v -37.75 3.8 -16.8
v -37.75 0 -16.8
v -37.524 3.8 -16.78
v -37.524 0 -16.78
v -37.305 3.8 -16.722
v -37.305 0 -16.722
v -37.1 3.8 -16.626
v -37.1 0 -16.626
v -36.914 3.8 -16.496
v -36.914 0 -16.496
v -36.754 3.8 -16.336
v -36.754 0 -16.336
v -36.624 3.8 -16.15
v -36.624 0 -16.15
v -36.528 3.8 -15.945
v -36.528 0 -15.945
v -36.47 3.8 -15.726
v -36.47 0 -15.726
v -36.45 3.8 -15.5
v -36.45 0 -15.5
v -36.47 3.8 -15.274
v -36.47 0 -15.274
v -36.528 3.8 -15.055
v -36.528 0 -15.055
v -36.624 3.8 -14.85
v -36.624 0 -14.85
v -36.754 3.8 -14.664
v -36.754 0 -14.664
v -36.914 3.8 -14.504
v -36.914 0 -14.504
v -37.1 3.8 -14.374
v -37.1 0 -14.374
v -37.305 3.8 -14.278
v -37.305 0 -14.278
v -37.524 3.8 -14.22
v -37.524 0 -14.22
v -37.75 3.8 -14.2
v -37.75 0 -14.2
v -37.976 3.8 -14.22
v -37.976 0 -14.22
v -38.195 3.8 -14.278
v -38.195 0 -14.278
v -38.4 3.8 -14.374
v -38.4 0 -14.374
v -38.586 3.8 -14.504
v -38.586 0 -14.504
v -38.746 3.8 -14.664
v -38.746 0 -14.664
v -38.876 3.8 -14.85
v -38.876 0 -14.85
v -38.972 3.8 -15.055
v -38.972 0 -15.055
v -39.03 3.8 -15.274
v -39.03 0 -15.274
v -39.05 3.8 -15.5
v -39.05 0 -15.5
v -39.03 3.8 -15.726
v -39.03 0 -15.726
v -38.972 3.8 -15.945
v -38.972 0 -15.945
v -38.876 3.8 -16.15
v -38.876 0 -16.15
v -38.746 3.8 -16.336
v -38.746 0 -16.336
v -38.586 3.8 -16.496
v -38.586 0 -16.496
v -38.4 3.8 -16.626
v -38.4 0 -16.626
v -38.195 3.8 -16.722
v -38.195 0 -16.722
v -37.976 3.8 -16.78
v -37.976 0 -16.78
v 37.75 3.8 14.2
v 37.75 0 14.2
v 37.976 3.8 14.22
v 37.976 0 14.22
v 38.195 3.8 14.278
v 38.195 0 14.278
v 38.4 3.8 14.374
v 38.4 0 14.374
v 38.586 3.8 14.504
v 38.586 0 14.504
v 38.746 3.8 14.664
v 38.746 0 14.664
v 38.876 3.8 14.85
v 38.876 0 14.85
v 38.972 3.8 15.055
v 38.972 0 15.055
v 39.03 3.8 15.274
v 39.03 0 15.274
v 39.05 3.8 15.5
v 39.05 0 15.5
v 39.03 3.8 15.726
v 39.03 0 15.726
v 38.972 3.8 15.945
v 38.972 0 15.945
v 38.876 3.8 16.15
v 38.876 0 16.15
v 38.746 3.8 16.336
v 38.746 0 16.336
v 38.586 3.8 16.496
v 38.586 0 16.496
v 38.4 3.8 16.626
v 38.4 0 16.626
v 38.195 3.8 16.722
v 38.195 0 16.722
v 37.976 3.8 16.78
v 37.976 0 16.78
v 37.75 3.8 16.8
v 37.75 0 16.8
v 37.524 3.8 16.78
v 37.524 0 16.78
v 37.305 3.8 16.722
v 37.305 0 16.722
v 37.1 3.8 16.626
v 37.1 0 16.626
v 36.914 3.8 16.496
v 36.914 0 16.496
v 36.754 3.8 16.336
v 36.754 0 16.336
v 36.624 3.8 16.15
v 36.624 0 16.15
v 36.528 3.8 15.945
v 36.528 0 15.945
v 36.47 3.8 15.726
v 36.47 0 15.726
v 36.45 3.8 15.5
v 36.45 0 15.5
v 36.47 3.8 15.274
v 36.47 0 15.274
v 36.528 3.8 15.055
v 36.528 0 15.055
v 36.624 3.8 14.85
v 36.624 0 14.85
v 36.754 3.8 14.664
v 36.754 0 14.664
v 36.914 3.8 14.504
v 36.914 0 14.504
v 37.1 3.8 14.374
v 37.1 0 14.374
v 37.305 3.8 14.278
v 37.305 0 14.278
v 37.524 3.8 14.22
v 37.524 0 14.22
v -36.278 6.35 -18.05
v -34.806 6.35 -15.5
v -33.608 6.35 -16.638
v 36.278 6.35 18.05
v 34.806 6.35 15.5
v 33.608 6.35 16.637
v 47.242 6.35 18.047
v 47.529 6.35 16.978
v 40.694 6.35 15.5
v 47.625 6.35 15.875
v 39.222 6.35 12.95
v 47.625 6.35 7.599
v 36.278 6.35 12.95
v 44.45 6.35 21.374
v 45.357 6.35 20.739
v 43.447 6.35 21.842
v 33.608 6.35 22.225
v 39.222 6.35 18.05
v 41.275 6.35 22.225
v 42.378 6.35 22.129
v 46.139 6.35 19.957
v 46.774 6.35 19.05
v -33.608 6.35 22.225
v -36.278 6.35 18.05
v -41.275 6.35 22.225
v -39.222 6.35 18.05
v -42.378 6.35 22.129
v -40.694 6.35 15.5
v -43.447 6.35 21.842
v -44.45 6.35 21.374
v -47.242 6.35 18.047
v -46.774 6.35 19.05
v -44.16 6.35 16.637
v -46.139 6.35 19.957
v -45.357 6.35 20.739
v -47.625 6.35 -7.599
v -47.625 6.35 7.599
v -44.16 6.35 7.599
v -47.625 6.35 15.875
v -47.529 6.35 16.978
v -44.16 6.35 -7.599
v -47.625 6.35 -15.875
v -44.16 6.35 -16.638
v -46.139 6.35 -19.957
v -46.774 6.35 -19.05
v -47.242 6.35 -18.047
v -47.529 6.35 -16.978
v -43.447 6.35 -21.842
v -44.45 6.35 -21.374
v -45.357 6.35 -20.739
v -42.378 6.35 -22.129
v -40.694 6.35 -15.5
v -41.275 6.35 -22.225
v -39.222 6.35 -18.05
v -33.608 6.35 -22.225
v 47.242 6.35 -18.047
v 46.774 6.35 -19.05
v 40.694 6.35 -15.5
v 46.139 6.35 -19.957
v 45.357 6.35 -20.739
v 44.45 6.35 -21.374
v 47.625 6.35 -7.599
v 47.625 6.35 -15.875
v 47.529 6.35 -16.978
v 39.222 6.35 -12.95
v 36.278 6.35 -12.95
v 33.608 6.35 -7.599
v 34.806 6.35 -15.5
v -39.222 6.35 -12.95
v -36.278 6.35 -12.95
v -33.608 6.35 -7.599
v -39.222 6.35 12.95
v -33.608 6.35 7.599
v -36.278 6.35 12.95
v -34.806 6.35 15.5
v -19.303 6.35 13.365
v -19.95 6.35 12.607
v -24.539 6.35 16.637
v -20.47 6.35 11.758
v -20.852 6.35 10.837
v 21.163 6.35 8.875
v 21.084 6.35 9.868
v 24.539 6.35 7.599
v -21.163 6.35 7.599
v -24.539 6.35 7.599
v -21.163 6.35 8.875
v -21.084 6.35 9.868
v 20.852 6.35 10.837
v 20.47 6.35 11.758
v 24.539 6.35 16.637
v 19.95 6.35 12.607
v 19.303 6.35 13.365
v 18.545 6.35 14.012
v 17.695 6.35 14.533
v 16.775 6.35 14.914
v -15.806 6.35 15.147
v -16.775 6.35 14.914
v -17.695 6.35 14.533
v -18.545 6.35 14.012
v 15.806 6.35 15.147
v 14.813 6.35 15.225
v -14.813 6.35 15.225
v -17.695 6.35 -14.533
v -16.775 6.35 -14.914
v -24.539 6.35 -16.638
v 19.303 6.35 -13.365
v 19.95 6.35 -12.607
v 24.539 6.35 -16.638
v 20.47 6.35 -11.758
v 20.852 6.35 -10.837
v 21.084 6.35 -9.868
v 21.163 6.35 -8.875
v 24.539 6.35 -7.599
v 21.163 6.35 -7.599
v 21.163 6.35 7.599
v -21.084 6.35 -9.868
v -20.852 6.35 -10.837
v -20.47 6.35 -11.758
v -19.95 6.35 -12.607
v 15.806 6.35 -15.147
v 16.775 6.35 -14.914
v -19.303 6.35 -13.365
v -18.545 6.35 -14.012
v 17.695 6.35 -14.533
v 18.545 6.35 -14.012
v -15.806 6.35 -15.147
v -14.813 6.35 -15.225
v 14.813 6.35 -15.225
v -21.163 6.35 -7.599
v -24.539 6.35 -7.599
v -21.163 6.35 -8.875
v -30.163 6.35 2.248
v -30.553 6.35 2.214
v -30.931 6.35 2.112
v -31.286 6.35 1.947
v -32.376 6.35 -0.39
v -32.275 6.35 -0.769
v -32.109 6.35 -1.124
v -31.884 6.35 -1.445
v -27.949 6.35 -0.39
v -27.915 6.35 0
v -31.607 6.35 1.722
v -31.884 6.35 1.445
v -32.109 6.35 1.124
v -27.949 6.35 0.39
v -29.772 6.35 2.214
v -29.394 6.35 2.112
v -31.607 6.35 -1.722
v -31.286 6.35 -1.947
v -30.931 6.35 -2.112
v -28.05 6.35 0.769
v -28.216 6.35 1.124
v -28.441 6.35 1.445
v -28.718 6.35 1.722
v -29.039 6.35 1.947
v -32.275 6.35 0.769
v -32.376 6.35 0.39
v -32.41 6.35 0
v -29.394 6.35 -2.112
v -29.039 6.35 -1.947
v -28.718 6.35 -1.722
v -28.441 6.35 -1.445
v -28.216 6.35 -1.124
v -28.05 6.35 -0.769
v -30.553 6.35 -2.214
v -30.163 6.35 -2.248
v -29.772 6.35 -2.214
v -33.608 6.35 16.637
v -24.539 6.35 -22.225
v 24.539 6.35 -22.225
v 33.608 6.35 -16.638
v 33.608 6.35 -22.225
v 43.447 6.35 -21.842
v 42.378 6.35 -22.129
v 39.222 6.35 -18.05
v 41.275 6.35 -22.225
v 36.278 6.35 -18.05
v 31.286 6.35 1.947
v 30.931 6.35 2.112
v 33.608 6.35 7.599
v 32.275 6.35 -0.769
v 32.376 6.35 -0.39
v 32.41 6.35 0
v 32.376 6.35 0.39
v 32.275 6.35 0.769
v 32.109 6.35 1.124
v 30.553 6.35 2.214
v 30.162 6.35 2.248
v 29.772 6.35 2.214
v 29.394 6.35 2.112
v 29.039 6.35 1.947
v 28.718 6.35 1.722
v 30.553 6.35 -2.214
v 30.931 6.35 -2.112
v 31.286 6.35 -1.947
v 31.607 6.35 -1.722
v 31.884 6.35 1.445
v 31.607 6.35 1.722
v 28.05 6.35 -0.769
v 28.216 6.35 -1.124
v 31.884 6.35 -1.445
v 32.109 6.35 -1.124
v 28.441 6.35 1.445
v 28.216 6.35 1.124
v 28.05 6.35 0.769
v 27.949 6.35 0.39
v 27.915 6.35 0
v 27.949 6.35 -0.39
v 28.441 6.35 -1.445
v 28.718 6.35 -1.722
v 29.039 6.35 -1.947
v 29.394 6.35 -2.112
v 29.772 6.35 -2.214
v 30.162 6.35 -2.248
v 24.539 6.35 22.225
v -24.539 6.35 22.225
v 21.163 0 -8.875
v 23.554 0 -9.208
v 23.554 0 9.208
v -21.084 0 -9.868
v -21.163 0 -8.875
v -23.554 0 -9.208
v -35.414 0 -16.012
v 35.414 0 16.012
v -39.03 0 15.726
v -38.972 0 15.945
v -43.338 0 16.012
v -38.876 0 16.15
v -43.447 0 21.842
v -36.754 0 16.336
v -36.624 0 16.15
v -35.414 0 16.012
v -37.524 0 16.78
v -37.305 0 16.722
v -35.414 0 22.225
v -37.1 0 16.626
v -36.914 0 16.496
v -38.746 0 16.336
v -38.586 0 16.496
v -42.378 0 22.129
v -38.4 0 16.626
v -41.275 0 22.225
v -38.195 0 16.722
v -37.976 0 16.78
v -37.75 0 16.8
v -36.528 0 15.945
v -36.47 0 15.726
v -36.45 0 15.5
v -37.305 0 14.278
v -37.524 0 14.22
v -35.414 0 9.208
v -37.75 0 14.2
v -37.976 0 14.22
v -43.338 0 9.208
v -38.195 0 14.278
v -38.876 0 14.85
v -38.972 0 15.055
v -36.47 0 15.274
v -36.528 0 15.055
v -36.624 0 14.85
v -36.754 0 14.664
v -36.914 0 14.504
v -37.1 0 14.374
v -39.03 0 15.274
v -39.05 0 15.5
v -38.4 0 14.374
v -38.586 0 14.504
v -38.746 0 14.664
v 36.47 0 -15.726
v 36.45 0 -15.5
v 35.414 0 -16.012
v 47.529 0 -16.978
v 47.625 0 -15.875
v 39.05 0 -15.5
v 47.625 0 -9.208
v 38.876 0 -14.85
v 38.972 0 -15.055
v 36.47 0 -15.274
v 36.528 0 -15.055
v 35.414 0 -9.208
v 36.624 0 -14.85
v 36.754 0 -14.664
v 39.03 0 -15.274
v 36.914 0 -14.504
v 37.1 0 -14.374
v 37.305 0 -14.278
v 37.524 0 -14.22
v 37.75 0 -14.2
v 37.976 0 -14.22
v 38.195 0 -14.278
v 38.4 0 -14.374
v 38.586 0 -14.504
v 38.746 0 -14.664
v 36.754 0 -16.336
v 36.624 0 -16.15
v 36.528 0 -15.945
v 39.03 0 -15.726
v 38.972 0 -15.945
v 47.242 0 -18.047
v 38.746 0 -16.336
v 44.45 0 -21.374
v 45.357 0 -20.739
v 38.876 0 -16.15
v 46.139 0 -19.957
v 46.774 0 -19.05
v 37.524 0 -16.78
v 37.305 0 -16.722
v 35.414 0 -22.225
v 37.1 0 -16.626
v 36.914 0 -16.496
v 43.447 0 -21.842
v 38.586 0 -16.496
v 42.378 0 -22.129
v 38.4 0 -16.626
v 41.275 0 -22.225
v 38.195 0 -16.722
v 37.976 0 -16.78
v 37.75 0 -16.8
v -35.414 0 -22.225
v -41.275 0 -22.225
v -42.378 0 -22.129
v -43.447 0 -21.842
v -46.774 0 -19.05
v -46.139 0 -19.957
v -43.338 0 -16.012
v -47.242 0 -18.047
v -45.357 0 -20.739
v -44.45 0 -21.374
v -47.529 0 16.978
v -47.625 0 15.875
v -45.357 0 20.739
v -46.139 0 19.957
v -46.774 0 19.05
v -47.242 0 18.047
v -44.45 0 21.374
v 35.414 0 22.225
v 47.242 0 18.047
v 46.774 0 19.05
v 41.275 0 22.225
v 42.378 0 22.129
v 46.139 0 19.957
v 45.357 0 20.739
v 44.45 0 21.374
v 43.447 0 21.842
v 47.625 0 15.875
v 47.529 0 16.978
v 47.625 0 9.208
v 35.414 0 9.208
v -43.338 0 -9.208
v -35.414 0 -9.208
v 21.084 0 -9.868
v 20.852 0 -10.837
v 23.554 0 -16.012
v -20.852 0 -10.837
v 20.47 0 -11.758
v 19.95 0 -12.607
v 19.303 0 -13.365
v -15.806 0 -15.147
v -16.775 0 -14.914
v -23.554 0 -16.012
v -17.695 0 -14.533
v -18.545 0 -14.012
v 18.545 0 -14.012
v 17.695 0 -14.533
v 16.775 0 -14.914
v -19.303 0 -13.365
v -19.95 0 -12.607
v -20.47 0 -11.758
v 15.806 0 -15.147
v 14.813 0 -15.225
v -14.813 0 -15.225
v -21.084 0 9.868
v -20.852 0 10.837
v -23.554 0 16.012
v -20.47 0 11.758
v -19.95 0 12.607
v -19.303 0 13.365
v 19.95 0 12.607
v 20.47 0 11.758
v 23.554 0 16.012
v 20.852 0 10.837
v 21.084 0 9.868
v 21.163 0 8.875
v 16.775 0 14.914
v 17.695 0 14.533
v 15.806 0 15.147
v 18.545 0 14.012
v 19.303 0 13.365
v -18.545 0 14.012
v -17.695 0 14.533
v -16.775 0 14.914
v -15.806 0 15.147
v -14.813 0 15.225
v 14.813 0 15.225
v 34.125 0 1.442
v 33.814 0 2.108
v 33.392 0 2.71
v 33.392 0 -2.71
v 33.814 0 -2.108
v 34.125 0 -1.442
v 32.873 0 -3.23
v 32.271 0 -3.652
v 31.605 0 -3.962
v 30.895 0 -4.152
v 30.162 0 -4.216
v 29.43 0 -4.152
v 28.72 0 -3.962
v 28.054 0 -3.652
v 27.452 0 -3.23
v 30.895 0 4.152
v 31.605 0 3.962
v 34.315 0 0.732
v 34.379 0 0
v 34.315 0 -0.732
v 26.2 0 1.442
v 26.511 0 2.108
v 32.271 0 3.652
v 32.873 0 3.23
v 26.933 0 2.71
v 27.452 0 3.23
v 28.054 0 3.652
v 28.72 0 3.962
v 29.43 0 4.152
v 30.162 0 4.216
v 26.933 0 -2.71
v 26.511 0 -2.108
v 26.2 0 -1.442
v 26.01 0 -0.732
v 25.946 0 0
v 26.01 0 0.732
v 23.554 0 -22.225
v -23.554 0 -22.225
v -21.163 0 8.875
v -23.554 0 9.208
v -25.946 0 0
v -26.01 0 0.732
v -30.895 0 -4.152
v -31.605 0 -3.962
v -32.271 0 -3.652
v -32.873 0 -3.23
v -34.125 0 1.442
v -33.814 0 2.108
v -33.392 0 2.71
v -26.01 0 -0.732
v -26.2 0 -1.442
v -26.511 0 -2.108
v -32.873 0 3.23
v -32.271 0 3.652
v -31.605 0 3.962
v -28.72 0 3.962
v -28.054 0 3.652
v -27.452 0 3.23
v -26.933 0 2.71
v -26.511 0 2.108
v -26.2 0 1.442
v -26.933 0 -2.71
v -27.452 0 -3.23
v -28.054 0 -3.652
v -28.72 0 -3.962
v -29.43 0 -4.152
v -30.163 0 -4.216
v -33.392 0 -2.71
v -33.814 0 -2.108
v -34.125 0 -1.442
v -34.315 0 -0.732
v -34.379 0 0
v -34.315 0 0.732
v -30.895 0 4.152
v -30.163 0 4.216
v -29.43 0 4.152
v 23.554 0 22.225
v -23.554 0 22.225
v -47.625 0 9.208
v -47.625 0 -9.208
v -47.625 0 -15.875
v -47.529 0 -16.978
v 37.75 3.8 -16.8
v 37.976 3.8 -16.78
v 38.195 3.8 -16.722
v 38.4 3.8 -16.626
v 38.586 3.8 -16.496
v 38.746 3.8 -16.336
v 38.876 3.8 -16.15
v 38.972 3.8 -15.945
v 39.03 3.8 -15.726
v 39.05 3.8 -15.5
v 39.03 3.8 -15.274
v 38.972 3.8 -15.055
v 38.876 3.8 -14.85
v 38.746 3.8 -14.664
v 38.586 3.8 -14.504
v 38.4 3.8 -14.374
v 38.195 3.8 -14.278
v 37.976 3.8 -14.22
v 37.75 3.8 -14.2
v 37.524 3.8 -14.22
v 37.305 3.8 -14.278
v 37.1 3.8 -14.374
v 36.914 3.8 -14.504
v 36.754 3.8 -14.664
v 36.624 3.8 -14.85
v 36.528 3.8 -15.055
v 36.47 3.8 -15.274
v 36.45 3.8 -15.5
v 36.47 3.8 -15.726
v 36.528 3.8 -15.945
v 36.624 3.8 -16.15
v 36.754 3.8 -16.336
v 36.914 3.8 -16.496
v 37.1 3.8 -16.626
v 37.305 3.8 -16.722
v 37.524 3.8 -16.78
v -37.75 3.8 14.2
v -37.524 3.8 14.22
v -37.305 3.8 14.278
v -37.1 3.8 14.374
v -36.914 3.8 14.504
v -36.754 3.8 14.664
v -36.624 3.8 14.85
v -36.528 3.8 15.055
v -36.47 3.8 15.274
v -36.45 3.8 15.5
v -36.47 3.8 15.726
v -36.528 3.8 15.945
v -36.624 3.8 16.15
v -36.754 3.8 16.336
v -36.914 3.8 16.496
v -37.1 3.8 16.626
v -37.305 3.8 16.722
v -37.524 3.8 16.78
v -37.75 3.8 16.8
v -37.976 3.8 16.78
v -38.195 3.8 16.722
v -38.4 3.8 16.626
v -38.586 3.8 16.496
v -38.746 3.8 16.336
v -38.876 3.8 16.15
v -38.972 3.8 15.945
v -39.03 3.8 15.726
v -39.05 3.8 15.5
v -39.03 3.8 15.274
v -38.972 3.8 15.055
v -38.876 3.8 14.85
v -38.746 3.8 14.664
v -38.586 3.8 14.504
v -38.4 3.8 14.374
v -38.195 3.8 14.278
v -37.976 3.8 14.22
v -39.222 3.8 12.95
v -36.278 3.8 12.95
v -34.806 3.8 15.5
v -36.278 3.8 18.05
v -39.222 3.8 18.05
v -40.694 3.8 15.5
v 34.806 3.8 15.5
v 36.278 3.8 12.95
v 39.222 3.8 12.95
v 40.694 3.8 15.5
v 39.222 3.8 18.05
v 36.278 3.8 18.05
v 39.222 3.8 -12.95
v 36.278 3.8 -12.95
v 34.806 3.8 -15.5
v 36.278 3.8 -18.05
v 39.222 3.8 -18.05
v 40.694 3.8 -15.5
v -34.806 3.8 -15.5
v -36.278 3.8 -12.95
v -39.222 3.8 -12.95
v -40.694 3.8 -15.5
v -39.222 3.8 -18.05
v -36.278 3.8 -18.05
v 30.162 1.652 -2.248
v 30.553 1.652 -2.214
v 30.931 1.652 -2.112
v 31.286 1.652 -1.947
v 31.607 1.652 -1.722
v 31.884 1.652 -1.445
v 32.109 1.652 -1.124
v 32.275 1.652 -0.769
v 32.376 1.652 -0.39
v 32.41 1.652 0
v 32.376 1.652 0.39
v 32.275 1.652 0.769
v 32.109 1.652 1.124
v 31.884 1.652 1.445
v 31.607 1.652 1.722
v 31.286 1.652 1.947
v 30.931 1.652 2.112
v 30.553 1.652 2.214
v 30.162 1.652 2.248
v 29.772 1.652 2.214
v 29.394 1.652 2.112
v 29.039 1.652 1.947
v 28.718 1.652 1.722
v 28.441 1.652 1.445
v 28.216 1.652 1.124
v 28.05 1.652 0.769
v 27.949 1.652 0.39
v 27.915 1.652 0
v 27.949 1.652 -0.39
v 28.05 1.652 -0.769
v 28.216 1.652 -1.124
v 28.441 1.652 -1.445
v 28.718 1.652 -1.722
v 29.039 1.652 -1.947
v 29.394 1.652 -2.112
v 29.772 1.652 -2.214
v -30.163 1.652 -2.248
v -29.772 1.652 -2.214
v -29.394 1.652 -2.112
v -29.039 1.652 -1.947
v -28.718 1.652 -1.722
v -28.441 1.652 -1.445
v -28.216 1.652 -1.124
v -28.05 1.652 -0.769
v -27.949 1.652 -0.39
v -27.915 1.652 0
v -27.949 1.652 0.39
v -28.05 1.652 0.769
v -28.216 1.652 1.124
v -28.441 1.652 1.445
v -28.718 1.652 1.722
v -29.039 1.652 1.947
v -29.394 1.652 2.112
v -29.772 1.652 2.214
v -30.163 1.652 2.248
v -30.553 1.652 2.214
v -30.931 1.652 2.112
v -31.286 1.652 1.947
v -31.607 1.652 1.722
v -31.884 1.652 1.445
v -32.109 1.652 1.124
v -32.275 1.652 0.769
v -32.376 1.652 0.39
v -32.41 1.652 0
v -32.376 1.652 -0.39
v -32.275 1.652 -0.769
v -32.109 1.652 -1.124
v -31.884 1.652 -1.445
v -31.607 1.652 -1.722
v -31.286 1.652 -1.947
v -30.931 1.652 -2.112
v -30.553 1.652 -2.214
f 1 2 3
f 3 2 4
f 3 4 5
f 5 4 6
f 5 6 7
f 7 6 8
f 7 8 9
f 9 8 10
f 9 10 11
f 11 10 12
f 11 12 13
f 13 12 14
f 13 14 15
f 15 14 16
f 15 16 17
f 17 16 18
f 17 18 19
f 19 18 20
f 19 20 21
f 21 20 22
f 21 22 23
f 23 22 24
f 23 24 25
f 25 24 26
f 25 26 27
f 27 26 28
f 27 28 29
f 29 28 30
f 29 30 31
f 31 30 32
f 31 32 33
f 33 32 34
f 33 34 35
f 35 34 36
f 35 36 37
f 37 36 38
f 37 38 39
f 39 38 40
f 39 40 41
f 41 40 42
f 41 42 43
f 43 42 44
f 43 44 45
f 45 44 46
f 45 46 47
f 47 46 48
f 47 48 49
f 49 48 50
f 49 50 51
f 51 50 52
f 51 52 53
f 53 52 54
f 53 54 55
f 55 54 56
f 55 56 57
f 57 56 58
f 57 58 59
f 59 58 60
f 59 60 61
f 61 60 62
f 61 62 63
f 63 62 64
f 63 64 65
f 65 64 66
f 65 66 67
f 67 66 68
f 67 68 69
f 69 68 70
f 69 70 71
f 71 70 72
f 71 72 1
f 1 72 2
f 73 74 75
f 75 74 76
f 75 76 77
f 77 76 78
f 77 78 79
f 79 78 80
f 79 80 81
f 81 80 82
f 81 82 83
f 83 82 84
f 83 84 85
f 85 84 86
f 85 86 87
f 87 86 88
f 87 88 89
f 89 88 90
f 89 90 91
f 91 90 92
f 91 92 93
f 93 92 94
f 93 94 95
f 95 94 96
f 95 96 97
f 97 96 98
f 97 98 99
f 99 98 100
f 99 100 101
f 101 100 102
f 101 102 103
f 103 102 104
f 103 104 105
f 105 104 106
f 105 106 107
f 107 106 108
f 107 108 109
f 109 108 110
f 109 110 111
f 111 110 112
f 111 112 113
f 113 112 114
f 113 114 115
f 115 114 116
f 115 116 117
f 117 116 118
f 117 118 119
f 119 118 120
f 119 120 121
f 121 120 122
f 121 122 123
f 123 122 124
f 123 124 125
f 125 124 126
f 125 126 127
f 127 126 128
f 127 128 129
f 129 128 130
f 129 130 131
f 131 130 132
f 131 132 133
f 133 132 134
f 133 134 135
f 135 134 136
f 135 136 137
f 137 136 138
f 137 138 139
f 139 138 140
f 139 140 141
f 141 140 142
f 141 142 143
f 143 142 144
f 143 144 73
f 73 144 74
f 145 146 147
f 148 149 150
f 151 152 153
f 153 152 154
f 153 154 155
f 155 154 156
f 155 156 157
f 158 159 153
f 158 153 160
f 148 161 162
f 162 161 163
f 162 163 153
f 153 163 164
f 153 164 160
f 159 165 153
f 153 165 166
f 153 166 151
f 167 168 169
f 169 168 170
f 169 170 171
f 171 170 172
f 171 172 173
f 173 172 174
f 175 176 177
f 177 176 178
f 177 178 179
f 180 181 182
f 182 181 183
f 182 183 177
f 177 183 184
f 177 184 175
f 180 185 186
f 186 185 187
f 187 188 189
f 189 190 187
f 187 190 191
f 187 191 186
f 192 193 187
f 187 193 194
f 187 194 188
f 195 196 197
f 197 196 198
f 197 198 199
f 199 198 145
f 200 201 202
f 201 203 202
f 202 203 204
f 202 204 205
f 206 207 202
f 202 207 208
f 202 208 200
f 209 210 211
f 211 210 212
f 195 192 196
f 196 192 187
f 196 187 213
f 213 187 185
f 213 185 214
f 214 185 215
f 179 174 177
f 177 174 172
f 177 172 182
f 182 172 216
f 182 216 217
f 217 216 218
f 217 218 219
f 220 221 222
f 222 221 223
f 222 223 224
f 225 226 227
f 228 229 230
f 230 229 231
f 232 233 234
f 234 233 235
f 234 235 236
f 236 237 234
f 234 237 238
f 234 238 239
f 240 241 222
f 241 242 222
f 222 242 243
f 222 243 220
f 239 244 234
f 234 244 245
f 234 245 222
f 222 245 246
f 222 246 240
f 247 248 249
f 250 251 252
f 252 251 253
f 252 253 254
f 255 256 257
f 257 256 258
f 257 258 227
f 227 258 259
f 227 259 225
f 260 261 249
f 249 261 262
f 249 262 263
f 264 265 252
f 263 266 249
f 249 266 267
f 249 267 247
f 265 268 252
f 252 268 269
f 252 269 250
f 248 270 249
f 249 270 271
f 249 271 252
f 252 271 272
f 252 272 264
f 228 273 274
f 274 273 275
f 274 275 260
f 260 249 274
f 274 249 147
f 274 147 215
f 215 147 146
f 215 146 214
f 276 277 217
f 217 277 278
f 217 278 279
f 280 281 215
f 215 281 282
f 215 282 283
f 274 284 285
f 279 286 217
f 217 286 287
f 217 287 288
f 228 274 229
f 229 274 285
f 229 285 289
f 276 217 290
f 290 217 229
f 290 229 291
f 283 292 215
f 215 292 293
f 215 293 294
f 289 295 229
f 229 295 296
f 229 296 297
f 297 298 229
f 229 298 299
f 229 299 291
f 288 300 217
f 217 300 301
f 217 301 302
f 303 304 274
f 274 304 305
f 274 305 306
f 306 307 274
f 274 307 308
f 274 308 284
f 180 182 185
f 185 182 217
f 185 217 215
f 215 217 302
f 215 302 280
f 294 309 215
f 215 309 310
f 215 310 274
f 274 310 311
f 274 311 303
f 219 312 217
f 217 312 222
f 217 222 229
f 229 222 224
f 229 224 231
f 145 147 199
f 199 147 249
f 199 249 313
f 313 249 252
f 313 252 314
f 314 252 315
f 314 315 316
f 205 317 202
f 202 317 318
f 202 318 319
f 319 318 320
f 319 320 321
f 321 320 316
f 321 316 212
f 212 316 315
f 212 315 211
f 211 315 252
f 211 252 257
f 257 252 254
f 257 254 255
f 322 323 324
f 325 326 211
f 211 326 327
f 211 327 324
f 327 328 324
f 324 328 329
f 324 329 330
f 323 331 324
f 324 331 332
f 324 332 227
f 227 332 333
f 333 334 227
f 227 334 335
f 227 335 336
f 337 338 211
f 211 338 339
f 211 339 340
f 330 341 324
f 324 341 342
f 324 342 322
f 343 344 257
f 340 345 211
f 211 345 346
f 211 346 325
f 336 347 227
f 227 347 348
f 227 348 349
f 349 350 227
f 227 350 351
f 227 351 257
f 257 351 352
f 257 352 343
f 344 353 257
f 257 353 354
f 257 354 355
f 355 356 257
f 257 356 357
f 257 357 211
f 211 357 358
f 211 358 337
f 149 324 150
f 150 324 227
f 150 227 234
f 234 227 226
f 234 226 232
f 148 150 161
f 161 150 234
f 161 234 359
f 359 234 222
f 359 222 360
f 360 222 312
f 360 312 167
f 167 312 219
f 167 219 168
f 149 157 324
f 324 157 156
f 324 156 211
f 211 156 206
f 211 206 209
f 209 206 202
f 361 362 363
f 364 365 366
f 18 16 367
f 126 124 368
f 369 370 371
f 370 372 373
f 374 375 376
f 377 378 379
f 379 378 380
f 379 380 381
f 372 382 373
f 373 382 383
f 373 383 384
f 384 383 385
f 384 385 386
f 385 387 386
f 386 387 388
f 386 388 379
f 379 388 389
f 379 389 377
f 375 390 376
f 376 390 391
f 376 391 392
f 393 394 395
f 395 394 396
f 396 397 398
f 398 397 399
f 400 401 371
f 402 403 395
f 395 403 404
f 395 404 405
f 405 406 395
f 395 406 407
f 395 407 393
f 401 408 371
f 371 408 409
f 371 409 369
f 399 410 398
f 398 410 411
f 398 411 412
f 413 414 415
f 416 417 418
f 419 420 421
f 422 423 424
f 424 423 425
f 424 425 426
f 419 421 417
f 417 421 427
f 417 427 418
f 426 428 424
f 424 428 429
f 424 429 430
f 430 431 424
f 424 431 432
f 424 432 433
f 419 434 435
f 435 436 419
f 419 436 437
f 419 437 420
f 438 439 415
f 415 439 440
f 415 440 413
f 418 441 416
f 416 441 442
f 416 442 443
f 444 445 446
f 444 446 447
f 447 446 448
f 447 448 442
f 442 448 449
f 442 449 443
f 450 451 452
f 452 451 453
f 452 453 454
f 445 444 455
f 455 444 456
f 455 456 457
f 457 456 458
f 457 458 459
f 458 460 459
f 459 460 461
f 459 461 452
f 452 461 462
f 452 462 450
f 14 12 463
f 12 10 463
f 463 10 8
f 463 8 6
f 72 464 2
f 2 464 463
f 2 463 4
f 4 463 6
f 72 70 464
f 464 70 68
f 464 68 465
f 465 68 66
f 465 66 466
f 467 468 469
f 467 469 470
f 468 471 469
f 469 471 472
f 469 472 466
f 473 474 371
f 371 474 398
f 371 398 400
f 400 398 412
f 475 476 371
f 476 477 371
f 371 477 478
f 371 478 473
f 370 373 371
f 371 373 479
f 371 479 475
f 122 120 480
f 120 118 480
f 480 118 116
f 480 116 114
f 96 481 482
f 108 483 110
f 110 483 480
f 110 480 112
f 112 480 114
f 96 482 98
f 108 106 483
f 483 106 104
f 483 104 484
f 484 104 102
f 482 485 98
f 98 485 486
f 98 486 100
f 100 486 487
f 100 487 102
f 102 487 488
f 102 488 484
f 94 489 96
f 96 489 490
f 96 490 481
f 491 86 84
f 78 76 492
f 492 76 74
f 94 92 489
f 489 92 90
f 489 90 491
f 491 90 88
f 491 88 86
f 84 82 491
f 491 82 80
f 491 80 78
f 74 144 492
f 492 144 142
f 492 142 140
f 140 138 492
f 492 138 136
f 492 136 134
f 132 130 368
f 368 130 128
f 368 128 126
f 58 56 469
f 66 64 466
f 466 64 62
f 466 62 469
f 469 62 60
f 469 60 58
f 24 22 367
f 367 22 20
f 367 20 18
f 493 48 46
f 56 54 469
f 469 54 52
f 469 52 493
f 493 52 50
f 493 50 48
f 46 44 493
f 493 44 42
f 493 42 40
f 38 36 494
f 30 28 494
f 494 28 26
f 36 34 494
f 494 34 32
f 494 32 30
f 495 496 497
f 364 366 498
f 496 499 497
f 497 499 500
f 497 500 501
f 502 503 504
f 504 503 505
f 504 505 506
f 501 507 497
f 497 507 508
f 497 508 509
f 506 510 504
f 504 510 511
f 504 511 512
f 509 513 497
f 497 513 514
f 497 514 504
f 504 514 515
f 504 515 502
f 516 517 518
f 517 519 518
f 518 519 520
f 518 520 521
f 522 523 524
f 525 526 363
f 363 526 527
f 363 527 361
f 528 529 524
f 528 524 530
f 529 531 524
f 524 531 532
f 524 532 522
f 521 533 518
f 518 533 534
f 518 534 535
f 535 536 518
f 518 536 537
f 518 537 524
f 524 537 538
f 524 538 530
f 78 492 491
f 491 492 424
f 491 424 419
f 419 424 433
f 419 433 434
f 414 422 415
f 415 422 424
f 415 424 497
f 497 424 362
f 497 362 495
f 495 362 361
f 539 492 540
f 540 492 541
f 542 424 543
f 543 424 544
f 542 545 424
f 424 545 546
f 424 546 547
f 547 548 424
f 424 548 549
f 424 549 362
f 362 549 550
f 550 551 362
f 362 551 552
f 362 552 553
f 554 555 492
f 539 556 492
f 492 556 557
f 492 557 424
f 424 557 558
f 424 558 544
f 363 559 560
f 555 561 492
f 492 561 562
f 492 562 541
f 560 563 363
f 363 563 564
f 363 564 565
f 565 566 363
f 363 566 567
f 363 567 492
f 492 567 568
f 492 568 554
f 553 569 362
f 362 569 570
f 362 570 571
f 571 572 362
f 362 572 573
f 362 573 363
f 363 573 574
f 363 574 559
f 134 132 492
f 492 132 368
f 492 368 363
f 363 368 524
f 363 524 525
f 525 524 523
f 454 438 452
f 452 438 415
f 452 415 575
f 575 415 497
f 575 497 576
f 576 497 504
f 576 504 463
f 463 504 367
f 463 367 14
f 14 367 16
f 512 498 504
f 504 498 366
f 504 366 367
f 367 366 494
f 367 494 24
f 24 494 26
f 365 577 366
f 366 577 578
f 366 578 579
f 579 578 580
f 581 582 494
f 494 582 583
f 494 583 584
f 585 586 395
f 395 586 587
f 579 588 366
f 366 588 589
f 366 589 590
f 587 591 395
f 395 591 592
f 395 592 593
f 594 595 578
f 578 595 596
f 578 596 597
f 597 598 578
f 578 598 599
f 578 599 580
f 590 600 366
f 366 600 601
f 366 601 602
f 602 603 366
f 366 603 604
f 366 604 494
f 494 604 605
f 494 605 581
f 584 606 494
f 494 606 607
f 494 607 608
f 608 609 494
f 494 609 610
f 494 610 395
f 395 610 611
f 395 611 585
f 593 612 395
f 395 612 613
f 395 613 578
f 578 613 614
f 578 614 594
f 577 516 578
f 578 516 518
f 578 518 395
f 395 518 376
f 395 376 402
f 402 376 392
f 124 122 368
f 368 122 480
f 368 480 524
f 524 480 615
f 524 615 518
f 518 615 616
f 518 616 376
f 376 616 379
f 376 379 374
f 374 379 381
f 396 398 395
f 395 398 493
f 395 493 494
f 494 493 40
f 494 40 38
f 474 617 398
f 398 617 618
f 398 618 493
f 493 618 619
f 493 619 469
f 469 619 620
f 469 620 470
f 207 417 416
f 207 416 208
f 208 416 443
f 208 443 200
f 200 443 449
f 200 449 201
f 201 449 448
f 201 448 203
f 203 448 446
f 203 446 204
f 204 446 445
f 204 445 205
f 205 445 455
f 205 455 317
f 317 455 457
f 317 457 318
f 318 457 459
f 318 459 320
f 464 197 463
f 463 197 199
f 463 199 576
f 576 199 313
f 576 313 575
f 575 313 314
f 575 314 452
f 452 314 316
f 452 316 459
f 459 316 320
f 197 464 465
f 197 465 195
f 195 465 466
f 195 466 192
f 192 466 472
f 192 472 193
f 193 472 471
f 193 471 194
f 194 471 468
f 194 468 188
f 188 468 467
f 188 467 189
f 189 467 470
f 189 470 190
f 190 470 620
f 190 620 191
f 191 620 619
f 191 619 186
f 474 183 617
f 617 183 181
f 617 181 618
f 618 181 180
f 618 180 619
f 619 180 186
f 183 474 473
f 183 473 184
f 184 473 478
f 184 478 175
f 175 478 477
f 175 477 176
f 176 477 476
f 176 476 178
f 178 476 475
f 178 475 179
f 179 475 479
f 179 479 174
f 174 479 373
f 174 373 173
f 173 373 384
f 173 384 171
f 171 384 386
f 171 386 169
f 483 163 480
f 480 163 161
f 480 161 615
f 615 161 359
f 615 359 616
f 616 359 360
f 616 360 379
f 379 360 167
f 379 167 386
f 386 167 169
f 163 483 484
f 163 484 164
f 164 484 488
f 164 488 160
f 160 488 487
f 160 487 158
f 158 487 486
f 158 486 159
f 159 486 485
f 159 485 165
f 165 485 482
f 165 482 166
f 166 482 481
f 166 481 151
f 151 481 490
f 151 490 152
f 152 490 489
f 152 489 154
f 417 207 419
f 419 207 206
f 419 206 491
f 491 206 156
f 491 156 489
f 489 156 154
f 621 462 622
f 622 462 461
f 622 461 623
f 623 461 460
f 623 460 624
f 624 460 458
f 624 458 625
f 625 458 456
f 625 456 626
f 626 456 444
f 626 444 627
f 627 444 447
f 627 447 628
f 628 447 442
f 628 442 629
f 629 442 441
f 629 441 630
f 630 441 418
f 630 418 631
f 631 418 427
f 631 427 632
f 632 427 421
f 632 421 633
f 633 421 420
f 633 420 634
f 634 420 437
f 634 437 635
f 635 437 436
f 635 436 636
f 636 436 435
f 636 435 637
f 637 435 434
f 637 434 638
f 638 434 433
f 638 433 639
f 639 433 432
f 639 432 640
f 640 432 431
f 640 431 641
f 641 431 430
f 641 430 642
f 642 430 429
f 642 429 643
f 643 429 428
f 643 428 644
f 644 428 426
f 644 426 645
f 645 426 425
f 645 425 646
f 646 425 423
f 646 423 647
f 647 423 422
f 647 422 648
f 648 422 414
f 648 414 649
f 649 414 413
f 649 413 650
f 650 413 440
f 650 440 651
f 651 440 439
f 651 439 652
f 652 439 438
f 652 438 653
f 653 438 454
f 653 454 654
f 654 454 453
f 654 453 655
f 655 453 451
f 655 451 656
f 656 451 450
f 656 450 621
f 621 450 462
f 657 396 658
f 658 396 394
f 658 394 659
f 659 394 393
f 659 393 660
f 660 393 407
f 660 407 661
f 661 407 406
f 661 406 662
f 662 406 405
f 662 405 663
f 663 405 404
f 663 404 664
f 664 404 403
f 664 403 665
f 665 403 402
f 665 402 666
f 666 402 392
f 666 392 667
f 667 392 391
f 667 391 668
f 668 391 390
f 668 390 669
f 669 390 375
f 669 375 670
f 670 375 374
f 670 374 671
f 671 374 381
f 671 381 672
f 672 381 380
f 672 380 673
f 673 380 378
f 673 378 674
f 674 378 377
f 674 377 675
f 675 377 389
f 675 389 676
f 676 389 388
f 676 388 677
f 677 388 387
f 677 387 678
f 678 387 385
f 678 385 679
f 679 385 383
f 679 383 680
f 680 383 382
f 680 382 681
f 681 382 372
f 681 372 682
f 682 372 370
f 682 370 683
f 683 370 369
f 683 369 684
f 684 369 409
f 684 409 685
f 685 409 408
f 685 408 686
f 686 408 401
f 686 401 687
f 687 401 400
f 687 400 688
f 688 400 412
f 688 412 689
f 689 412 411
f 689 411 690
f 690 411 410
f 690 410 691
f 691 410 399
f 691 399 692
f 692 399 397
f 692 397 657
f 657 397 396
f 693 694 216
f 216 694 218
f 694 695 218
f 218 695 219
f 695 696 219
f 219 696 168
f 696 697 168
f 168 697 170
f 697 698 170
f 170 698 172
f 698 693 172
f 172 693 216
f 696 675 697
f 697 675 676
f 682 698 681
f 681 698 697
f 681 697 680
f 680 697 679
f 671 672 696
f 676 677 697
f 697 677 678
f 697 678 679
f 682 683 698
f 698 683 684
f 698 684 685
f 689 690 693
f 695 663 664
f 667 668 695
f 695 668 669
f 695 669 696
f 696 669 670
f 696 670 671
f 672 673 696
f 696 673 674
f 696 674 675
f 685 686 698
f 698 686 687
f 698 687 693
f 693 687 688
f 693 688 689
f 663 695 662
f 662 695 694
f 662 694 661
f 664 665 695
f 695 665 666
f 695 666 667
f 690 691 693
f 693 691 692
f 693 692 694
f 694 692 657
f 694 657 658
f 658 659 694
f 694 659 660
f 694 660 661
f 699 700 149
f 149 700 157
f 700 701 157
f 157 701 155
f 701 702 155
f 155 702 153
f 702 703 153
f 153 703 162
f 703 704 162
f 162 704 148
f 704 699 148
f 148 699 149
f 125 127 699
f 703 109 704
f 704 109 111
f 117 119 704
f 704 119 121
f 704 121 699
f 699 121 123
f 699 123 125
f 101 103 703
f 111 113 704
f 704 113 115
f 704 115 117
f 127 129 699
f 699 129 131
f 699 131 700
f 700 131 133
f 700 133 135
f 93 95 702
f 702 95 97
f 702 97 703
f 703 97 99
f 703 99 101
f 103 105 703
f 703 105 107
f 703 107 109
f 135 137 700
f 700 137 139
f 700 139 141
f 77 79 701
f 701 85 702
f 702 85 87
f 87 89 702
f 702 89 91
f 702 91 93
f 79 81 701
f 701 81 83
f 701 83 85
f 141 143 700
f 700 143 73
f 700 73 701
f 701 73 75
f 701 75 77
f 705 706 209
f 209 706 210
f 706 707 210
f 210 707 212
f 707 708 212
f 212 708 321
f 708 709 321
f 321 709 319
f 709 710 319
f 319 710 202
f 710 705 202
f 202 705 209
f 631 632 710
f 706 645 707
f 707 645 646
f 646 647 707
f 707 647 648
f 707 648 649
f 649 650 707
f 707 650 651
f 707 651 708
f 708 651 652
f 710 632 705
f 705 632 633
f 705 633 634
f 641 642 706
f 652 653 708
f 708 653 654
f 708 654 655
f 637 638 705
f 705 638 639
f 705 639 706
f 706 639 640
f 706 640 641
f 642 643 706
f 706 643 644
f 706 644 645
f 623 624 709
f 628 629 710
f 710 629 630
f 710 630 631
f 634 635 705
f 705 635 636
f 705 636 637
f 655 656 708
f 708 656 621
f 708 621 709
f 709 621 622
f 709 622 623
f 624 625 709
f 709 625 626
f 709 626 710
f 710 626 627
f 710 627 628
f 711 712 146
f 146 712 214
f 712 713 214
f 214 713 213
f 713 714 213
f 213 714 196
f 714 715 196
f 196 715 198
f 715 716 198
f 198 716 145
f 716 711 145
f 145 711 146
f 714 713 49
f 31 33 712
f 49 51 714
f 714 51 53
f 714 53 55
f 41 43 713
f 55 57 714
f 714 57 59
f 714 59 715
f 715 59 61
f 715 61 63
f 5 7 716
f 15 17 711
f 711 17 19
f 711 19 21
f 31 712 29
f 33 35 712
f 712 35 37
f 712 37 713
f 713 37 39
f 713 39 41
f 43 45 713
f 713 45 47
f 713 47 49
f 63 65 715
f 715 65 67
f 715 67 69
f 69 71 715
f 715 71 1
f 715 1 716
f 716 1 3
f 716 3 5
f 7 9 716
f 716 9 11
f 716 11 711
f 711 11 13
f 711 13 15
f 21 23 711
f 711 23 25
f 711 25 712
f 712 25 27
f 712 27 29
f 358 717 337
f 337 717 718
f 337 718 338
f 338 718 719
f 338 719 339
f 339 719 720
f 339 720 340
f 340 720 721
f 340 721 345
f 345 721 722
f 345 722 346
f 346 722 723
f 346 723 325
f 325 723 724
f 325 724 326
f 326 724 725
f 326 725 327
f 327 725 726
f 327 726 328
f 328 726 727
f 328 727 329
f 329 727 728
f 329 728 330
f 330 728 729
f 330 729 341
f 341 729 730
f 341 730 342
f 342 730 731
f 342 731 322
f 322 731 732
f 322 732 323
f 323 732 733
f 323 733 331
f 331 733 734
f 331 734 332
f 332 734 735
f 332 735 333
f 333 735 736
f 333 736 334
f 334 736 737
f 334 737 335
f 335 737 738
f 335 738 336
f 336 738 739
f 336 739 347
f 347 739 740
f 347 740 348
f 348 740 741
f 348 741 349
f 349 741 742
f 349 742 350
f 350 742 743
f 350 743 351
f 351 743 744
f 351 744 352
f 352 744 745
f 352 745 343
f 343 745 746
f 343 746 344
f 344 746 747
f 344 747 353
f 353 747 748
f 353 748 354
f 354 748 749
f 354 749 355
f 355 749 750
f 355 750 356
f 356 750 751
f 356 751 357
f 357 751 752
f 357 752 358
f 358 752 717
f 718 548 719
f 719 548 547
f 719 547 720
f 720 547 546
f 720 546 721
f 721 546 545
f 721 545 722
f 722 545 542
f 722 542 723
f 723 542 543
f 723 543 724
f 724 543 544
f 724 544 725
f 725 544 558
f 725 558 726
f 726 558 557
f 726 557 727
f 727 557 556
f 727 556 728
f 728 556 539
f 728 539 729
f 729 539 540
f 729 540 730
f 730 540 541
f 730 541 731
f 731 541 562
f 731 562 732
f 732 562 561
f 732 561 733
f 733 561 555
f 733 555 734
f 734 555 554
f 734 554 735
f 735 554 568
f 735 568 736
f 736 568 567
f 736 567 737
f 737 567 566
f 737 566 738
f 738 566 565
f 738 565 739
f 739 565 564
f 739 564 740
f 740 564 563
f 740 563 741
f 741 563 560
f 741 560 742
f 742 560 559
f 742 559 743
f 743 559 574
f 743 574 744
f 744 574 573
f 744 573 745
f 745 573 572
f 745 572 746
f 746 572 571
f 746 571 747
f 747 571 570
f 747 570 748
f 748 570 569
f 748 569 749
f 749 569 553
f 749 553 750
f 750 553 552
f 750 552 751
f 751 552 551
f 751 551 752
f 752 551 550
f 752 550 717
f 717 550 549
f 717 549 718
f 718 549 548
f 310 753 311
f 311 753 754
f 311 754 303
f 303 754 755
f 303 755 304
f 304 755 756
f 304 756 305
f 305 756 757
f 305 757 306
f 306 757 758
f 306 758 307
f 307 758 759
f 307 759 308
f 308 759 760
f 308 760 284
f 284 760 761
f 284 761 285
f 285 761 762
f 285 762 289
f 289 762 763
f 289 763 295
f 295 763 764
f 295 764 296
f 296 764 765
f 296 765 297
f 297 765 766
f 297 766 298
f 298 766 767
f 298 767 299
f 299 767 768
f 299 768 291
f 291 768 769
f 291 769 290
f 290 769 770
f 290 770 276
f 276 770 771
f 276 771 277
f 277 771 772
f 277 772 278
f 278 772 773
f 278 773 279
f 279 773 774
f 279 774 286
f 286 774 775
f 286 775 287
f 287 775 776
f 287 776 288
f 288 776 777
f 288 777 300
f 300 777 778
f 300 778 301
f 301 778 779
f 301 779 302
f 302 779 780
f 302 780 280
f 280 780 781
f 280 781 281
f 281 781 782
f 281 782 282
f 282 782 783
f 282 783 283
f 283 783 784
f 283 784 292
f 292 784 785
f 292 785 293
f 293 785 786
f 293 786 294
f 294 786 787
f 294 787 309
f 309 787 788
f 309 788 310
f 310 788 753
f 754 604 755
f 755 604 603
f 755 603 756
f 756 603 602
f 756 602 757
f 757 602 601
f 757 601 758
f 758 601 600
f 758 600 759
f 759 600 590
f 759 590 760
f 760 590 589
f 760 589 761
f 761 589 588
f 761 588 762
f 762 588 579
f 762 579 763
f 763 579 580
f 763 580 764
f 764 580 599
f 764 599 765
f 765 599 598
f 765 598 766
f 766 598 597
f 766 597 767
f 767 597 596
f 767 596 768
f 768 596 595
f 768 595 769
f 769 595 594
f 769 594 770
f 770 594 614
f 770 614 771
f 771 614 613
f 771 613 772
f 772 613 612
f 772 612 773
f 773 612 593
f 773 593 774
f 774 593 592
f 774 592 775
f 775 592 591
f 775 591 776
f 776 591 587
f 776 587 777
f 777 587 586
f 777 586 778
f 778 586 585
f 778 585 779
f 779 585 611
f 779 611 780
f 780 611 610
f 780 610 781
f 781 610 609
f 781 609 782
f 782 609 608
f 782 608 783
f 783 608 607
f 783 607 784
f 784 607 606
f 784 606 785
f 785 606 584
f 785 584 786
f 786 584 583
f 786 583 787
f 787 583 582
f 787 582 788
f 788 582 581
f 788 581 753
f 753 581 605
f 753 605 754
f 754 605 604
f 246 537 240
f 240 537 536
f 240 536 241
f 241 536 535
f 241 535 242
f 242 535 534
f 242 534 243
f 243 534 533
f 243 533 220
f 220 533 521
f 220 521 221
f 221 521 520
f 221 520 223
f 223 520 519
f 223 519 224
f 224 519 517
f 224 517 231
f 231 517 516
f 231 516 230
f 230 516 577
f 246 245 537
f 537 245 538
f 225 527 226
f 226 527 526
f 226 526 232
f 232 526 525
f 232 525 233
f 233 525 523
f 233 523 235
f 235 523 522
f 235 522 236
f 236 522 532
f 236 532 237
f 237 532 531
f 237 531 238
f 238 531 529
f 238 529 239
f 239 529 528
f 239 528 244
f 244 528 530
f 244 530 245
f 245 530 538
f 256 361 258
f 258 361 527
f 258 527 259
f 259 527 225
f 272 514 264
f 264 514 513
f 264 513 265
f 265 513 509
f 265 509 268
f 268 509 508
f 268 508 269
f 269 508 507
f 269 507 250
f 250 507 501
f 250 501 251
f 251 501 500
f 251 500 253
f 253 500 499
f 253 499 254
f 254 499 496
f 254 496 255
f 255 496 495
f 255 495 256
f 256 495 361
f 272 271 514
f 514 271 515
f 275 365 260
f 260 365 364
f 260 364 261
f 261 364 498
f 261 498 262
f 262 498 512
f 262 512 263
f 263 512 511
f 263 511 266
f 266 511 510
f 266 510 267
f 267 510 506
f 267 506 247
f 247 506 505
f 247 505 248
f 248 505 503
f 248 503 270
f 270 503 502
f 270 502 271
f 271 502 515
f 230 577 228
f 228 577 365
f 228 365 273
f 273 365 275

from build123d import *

# Parameters (mm, degrees)
SKETCH1_R                                         = 1.3
BOSS_EXTRUDE1_DEPTH                               = 6.35
CUT_EXTRUDE1_DEPTH                                = 2.55
CSK_FOR_8_FLAT_HEAD_MACHINE_SCREW_100_D           = 4.4958
CSK_FOR_8_FLAT_HEAD_MACHINE_SCREW_100_CSINK_D     = 8.4328
CSK_FOR_8_FLAT_HEAD_MACHINE_SCREW_100_CSINK_ANGLE = 100
CUT_EXTRUDE2_DEPTH                                = 1
CUT_EXTRUDE2_DEPTH_BACK                           = 7.35


with BuildPart() as part:
    # Sketch1 → Boss-Extrude1 (new body)
    with BuildSketch(Plane(origin=(0, 0, 0), x_dir=(1, 0, 0), z_dir=(0, 1, 0))):
        with BuildLine():
            Line((41.275, 22.225), (-41.275, 22.225))
            ThreePointArc((-41.275, 22.225), (-45.765128061, 20.365128061), (-47.625, 15.875))
            Line((-47.625, 15.875), (-47.625, -15.875))
            ThreePointArc((-47.625, -15.875), (-45.765128061, -20.365128061), (-41.275, -22.225))
            Line((-41.275, -22.225), (41.275, -22.225))
            ThreePointArc((41.275, -22.225), (45.765128061, -20.365128061), (47.625, -15.875))
            Line((47.625, -15.875), (47.625, 15.875))
            ThreePointArc((47.625, 15.875), (45.765128061, 20.365128061), (41.275, 22.225))
        make_face()
        with Locations((-37.75, 15.5)):
            Circle(SKETCH1_R, mode=Mode.SUBTRACT)
        with Locations((37.75, 15.5)):
            Circle(SKETCH1_R, mode=Mode.SUBTRACT)
        with Locations((37.75, -15.5)):
            Circle(SKETCH1_R, mode=Mode.SUBTRACT)
        with Locations((-37.75, -15.5)):
            Circle(SKETCH1_R, mode=Mode.SUBTRACT)
    extrude(amount=BOSS_EXTRUDE1_DEPTH)

    # Sketch2 → Cut-Extrude1 (cut)
    with BuildSketch(Plane(origin=(0, 6.35, 0), x_dir=(1, 0, 0), z_dir=(0, 1, 0))):
        Polygon((-34.805513627, 15.5), (-36.277756814, 18.05), (-39.222243186, 18.05), (-40.694486373, 15.5), (-39.222243186, 12.95), (-36.277756814, 12.95), align=None)
        Polygon((36.277756814, 12.95), (34.805513627, 15.5), (36.277756814, 18.05), (39.222243186, 18.05), (40.694486373, 15.5), (39.222243186, 12.95), align=None)
        Polygon((34.805513627, -15.5), (36.277756814, -18.05), (39.222243186, -18.05), (40.694486373, -15.5), (39.222243186, -12.95), (36.277756814, -12.95), align=None)
        Polygon((-36.277756814, -12.95), (-34.805513627, -15.5), (-36.277756814, -18.05), (-39.222243186, -18.05), (-40.694486373, -15.5), (-39.222243186, -12.95), align=None)
    extrude(amount=-CUT_EXTRUDE1_DEPTH, mode=Mode.SUBTRACT)

    # CSK for #8 Flat Head Machine Screw (100)4 (through all)
    with Locations(Plane(origin=(0, 0, 0), x_dir=(-1, 0, 0), z_dir=(0, -1, 0))):
        with Locations((30.1625, 0), (-30.1625, 0)):
            CounterSinkHole(CSK_FOR_8_FLAT_HEAD_MACHINE_SCREW_100_D / 2, CSK_FOR_8_FLAT_HEAD_MACHINE_SCREW_100_CSINK_D / 2, counter_sink_angle=CSK_FOR_8_FLAT_HEAD_MACHINE_SCREW_100_CSINK_ANGLE)

    # Sketch6 → Cut-Extrude2 (cut, two sides)
    with BuildSketch(Plane.XZ) as cut_extrude2_sk:
        with BuildLine():
            Line((-14.8125, -15.225), (14.8125, -15.225))
            ThreePointArc((14.8125, -15.225), (19.302628061, -13.365128061), (21.1625, -8.875))
            Line((21.1625, -8.875), (21.1625, 8.875))
            ThreePointArc((21.1625, 8.875), (19.302628061, 13.365128061), (14.8125, 15.225))
            Line((14.8125, 15.225), (-14.8125, 15.225))
            ThreePointArc((-14.8125, 15.225), (-19.302628061, 13.365128061), (-21.1625, 8.875))
            Line((-21.1625, 8.875), (-21.1625, -8.875))
            ThreePointArc((-21.1625, -8.875), (-19.302628061, -13.365128061), (-14.8125, -15.225))
        make_face()
    extrude(amount=CUT_EXTRUDE2_DEPTH, mode=Mode.SUBTRACT)
    extrude(cut_extrude2_sk.sketch, amount=-CUT_EXTRUDE2_DEPTH_BACK, mode=Mode.SUBTRACT)


solid = part.part
